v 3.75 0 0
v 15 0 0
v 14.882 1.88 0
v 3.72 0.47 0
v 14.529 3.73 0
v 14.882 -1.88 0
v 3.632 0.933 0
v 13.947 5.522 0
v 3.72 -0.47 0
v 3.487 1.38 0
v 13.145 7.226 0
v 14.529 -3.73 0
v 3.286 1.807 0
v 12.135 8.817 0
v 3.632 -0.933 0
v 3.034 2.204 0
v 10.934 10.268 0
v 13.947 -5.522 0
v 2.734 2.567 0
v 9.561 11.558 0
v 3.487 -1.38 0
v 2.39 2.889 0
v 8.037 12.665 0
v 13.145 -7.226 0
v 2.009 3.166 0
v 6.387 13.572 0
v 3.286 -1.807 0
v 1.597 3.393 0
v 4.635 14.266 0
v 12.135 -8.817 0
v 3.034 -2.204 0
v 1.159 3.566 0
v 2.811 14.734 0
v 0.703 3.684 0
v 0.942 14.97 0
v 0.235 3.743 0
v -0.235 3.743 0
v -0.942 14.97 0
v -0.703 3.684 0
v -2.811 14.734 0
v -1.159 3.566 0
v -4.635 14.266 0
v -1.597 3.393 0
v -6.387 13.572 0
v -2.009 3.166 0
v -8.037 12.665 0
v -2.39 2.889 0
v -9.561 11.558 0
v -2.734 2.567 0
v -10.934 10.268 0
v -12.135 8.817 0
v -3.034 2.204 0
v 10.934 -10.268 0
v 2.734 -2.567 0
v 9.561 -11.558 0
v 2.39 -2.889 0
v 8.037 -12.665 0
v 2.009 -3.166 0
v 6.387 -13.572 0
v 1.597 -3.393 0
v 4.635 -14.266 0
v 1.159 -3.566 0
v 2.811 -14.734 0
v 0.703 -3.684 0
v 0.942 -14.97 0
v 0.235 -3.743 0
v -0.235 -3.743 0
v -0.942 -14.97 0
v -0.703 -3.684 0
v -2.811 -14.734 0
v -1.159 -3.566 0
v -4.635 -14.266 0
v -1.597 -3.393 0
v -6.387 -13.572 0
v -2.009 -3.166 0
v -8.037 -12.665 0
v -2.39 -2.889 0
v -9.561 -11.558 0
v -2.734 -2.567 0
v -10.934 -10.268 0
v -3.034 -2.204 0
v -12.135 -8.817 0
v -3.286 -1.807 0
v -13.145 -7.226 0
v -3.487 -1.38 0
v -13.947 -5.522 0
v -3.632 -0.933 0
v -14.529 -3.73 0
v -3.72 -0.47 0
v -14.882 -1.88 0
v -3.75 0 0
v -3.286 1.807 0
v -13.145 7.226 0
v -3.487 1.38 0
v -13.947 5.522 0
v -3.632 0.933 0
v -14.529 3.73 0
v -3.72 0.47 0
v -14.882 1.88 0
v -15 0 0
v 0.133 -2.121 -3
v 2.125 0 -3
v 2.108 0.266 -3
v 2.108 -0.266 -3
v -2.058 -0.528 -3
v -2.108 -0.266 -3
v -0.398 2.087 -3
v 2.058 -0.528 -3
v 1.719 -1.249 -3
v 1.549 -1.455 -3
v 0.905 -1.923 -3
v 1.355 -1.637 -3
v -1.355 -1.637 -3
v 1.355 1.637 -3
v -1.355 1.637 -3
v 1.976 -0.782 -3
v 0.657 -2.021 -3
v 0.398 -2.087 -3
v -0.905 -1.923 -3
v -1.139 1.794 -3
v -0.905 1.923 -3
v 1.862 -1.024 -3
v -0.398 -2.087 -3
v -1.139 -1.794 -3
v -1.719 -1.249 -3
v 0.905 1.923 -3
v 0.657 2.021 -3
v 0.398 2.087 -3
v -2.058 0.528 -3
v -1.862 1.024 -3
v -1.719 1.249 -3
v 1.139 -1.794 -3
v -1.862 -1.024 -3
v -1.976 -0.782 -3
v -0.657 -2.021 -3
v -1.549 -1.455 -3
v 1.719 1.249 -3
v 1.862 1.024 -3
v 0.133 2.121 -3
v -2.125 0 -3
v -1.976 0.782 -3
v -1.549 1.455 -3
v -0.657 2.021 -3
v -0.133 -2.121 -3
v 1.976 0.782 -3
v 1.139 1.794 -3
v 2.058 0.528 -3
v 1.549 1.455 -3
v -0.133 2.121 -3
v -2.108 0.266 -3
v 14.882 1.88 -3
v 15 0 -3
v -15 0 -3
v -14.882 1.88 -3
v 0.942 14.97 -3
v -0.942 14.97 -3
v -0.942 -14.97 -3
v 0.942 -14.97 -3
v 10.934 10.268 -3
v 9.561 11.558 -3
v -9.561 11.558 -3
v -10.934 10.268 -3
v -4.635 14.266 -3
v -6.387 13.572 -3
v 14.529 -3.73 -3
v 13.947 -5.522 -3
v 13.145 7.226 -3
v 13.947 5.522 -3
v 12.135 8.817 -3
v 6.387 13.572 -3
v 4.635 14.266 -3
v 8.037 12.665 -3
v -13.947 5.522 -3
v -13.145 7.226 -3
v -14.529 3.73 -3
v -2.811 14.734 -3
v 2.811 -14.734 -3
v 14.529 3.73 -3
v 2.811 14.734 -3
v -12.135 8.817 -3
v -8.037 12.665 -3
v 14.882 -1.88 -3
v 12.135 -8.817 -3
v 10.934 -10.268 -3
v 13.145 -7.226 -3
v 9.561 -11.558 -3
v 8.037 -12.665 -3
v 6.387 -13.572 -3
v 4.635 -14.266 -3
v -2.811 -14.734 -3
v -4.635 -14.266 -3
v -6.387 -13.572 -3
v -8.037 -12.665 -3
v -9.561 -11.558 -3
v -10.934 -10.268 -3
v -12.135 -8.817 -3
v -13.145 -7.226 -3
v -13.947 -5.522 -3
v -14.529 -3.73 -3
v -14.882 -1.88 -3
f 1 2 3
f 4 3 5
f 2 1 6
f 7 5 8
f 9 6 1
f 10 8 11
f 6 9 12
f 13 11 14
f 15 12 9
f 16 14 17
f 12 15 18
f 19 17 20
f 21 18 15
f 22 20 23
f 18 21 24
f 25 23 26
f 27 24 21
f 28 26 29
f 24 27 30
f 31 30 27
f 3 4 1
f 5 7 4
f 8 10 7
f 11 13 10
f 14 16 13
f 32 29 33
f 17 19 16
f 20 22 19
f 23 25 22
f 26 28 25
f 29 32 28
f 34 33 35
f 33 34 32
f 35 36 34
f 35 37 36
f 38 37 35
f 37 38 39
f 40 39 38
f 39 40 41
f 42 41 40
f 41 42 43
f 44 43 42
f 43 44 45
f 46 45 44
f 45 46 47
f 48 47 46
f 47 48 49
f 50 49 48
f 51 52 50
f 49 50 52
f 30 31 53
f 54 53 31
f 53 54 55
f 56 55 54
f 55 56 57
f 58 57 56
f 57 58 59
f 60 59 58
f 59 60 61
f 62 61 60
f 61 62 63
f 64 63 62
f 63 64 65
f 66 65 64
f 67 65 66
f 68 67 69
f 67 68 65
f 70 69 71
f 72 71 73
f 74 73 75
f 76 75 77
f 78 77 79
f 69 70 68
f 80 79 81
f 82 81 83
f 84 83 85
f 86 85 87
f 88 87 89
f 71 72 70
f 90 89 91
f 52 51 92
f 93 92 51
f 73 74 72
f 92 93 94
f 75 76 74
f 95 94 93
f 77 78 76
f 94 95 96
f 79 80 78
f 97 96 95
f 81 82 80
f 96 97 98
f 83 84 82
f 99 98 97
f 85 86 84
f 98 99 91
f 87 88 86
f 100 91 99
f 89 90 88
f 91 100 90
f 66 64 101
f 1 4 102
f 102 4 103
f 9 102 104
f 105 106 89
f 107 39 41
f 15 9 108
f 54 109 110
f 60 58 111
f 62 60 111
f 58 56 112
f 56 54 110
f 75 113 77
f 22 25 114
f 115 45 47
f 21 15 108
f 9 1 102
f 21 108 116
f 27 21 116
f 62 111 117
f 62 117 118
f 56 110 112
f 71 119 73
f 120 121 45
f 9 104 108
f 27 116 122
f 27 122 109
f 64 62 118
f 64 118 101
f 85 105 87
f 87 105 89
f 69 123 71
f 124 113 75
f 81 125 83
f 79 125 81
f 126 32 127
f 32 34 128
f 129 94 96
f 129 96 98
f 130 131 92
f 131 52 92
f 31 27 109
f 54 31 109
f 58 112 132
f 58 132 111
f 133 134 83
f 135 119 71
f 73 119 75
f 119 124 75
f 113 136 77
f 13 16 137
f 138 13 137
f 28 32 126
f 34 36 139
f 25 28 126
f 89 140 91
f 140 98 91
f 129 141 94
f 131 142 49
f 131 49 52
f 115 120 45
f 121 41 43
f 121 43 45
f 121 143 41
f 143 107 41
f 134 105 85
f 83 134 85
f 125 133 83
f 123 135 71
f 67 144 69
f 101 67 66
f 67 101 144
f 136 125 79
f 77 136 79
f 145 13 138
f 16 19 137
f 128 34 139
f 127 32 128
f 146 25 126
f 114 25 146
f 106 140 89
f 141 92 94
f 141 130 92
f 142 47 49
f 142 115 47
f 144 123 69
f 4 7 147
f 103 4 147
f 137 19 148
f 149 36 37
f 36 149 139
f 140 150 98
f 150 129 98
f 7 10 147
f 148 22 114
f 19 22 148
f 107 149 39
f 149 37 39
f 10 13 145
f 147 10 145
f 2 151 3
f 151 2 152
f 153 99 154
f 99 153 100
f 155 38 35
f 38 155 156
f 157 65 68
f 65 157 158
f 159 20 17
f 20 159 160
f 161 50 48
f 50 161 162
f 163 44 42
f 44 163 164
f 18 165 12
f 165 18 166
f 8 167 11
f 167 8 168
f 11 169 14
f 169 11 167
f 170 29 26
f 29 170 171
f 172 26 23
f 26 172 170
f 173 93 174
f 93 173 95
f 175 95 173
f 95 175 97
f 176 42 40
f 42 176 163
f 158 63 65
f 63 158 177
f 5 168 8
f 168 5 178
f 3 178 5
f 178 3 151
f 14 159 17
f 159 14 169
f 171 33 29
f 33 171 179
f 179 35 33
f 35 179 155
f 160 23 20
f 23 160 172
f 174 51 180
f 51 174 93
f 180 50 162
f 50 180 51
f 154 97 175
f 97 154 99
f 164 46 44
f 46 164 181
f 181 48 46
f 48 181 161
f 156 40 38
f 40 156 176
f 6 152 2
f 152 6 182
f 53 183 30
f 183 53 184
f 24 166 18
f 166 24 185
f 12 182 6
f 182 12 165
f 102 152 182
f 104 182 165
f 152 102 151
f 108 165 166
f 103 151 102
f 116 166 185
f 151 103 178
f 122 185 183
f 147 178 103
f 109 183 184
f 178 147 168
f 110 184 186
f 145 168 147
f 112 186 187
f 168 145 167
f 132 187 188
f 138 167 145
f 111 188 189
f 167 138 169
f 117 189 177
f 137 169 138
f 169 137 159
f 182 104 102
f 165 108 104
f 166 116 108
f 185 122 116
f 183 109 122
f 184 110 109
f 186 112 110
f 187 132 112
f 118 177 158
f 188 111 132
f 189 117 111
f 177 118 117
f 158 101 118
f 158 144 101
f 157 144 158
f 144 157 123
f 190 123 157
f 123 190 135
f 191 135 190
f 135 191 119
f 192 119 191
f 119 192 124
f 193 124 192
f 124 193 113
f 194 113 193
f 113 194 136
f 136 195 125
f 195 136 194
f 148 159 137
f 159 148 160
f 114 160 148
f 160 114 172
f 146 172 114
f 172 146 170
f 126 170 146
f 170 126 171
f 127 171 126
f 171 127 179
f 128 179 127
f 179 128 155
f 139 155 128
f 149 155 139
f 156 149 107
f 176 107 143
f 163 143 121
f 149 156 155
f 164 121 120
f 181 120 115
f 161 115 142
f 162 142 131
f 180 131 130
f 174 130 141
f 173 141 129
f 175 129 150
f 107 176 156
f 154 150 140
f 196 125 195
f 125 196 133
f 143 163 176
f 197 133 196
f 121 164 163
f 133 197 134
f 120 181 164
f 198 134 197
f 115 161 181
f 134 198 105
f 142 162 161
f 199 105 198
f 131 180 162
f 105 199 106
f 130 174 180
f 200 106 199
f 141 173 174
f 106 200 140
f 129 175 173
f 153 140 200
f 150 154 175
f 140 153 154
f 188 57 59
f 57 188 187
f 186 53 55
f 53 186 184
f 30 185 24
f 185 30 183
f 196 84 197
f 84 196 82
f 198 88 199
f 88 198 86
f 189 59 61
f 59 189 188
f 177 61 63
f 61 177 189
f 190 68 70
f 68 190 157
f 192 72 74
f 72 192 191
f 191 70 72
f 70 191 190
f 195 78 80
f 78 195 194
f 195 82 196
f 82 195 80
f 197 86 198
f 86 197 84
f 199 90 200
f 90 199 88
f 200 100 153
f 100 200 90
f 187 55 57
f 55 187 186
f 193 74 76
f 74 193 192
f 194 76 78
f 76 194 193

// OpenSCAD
$fn = 50;


difference() {
	union() {
		translate(v = [0, 0, -3.0000000000]) {
			cylinder(h = 3, r = 15.0000000000);
		}
	}
	union() {
		translate(v = [0, 0, 0]) {
			rotate(a = [0, 0, 0]) {
				difference() {
					union() {
						translate(v = [0, 0, -6.0000000000]) {
							cylinder(h = 6, r = 2.0000000000);
						}
						translate(v = [0, 0, -3]) {
							cylinder(h = 3, r1 = 2.1250000000, r2 = 3.7500000000);
						}
						translate(v = [0, 0, -6.0000000000]) {
							cylinder(h = 6, r = 2.1250000000);
						}
						translate(v = [0, 0, -6.0000000000]) {
							cylinder(h = 6, r = 2.0000000000);
						}
					}
					union();
				}
			}
		}
	}
}
